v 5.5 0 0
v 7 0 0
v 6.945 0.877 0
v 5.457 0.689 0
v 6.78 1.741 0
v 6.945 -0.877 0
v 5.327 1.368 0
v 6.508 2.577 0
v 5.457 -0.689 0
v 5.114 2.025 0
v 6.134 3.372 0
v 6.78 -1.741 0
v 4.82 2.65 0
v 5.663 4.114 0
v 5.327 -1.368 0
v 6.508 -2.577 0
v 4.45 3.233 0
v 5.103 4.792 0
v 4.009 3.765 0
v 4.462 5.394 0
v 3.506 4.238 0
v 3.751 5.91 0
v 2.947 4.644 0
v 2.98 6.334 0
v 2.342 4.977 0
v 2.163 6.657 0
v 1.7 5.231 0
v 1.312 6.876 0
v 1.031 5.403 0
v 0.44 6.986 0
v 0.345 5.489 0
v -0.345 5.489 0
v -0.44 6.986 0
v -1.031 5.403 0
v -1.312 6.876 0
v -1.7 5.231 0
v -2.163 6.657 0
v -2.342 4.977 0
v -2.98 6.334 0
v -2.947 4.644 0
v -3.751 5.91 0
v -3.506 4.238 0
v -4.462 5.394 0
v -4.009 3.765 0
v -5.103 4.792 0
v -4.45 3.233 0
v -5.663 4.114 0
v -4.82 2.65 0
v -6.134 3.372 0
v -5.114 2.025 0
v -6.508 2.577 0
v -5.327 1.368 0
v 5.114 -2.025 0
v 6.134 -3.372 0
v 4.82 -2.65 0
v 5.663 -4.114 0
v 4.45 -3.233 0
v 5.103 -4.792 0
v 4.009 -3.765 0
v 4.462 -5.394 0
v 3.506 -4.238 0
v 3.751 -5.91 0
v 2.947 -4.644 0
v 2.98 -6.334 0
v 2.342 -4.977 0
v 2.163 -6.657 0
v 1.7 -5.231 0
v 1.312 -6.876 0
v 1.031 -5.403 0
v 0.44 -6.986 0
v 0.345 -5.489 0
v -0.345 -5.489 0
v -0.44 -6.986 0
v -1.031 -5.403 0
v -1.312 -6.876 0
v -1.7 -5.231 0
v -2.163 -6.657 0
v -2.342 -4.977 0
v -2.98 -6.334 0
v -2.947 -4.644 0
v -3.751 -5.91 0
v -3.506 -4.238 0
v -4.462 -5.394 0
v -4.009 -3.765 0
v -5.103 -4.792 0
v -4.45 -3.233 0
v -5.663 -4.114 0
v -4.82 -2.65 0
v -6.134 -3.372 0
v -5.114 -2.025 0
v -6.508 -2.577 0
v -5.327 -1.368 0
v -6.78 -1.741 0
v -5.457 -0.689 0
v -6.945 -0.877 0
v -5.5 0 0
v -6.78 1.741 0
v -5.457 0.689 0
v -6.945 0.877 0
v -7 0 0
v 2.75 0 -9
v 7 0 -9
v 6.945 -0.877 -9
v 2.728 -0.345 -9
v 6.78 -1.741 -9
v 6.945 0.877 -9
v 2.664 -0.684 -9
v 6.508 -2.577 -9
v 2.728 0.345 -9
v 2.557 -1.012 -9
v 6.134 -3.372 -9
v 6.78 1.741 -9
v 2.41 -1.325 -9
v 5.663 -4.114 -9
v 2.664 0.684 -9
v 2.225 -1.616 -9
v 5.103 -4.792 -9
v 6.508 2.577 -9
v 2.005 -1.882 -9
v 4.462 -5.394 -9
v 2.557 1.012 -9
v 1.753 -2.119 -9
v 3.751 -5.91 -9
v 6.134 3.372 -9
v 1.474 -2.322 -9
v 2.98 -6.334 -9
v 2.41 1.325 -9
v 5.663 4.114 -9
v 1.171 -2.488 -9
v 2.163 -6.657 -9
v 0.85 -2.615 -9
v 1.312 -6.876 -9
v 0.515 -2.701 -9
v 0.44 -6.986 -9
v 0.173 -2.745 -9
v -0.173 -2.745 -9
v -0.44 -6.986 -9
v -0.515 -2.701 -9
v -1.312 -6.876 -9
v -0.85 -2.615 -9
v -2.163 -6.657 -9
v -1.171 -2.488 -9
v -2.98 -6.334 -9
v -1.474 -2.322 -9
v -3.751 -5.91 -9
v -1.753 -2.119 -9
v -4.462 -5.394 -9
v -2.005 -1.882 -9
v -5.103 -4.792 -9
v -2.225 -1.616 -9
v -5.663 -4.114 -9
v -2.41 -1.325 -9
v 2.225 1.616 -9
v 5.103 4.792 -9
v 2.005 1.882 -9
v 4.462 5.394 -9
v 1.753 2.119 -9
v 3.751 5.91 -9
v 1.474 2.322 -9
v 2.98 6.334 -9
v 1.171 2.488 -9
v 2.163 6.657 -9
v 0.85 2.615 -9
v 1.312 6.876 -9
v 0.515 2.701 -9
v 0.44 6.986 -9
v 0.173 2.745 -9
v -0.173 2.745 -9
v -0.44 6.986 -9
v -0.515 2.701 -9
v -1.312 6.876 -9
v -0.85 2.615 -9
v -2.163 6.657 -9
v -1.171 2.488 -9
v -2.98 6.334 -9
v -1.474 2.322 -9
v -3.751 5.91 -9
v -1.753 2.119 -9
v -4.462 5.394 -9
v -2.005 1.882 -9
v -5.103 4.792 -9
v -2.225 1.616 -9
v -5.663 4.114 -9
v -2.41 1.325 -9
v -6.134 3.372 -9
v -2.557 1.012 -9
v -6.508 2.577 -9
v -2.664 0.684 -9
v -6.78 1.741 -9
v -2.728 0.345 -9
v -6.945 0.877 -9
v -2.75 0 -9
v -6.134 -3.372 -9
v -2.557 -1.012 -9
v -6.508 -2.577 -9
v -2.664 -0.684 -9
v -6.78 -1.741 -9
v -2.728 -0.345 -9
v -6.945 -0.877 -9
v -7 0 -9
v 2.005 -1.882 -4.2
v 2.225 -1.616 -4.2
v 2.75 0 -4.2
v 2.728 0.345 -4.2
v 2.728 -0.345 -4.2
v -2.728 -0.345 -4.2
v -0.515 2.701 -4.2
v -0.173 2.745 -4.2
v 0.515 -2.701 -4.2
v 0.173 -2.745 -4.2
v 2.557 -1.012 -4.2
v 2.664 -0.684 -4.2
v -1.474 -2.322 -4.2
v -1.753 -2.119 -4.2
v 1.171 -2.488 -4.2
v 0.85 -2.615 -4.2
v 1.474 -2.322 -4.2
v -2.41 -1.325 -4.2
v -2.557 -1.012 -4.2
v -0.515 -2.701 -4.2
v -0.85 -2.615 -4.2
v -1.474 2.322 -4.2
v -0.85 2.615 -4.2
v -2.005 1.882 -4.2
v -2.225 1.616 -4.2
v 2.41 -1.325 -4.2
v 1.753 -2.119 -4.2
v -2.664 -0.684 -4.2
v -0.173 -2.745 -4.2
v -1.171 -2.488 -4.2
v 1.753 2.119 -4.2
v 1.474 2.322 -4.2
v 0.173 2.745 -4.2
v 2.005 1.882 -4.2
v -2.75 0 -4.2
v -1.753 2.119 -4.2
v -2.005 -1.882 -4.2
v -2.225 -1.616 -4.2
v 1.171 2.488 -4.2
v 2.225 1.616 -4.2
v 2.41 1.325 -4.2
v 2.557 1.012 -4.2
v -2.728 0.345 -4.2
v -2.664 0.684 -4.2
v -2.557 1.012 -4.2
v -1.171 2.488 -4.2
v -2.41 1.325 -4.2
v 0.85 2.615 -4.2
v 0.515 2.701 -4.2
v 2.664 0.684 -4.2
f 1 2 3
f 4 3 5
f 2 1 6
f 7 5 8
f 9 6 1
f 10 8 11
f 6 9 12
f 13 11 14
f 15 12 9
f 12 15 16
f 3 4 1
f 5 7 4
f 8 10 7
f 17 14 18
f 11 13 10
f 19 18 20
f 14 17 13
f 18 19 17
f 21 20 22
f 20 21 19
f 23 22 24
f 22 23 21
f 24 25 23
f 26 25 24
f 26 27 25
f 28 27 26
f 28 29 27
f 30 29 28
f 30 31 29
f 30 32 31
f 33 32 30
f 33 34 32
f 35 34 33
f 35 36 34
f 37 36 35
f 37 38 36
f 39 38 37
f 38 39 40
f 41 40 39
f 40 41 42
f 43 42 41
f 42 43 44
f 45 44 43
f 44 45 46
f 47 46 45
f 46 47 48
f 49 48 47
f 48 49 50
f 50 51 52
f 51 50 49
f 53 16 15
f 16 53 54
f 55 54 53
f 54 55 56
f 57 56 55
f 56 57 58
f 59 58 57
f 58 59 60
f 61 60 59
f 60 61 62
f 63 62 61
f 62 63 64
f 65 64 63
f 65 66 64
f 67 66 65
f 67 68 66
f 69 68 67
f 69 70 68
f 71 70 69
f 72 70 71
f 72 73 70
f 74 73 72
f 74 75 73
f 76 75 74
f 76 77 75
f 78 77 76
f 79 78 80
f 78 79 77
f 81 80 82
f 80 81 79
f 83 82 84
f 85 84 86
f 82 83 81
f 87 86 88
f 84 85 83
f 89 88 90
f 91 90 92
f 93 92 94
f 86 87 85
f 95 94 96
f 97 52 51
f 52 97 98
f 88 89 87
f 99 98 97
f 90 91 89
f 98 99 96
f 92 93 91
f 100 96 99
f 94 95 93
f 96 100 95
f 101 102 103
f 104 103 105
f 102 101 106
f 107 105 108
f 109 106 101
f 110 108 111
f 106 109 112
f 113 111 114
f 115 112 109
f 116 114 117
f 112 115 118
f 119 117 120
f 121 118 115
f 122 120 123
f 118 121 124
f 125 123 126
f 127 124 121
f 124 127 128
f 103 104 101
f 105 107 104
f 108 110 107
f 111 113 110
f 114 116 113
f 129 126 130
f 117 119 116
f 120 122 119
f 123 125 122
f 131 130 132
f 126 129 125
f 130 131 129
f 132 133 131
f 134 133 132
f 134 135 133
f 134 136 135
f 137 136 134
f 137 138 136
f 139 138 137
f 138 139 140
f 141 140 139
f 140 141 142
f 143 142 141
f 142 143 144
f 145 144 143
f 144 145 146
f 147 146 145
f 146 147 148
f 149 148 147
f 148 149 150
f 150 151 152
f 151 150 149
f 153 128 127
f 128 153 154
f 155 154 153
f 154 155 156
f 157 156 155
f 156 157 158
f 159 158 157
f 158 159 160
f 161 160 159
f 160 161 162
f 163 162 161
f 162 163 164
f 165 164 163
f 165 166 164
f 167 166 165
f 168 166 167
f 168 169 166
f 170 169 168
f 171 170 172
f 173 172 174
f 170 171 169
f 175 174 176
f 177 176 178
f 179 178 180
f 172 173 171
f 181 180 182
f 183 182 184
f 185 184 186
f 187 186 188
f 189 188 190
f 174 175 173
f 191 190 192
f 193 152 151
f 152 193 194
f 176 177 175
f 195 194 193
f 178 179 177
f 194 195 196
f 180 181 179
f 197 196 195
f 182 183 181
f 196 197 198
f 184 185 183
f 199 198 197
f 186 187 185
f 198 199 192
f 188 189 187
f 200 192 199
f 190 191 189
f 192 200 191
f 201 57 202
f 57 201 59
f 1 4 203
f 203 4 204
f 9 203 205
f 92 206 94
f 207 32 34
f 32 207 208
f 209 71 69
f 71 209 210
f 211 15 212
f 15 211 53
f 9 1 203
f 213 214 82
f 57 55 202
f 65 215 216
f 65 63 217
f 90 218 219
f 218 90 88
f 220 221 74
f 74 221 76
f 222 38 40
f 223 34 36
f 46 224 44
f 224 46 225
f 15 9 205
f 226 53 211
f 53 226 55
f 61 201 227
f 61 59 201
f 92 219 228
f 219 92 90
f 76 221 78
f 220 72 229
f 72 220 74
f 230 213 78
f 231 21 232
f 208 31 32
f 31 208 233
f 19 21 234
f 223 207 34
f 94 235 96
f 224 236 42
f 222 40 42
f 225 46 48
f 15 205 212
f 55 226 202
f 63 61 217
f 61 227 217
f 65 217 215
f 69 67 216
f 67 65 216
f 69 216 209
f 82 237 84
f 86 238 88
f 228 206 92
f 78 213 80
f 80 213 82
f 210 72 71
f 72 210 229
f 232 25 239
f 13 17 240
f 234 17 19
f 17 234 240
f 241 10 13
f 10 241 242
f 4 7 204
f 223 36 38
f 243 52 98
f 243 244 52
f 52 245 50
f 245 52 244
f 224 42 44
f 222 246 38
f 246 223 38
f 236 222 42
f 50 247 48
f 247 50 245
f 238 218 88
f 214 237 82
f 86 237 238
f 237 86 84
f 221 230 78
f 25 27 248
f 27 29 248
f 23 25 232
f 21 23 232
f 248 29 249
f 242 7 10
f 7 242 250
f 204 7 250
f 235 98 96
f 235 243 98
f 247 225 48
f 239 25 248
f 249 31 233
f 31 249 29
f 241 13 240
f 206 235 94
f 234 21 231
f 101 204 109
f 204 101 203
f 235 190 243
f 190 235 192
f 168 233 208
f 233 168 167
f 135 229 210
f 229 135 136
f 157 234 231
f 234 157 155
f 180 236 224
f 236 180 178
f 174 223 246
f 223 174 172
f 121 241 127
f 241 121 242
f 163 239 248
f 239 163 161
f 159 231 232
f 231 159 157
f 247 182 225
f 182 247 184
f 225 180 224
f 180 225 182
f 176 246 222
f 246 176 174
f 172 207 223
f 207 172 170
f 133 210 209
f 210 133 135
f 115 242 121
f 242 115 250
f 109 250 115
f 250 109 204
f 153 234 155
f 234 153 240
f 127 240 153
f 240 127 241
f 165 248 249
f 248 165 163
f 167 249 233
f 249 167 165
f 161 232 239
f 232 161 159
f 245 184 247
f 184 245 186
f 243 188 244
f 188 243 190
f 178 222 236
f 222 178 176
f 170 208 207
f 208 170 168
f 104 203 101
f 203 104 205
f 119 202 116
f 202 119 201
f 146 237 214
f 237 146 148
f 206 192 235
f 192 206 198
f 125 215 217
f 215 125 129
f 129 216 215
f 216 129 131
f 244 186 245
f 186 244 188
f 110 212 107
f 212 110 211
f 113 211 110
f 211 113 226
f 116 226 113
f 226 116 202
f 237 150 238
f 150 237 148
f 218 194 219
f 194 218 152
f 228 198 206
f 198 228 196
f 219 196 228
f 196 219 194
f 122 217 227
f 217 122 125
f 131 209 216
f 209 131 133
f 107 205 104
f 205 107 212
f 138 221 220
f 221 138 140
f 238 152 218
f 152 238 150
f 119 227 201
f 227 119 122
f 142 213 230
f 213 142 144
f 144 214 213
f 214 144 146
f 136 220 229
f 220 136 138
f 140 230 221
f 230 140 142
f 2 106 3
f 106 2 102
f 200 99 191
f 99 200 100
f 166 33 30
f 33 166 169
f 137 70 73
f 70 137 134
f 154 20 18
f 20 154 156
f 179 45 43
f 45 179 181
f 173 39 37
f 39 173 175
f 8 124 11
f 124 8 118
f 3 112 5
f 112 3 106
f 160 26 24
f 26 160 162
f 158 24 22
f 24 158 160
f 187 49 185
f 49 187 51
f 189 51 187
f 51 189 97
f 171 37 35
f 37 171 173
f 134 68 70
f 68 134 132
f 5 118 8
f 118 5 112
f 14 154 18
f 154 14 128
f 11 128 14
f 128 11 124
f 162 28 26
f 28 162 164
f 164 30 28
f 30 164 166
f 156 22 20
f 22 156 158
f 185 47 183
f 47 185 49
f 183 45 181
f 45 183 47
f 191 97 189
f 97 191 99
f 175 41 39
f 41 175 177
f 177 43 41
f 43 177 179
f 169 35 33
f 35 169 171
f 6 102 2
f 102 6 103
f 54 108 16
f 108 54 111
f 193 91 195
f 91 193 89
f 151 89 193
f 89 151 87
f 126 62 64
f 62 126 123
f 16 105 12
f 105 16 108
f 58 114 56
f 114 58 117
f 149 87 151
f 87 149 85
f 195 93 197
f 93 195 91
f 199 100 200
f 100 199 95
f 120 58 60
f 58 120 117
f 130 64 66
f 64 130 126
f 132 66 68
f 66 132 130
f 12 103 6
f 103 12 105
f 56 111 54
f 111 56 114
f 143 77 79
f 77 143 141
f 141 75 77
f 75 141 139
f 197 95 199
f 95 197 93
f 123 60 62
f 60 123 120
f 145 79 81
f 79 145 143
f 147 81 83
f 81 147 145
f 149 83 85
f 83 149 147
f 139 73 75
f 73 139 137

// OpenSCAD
$fn = 50;


difference() {
	union() {
		translate(v = [0, 0, -9.0000000000]) {
			cylinder(h = 9, r = 7.0000000000);
		}
		cylinder(h = 0, r = 10.0000000000);
	}
	union() {
		translate(v = [0, 0, 0]) {
			rotate(a = [0, 0, 0]) {
				difference() {
					union() {
						#translate(v = [0, 0, -9.0000000000]) {
							cylinder(h = 9, r = 2.2500000000);
						}
						#translate(v = [0, 0, -4.2000000000]) {
							cylinder(h = 4.2000000000, r1 = 2.7500000000, r2 = 5.5000000000);
						}
						#translate(v = [0, 0, -9.0000000000]) {
							cylinder(h = 9, r = 2.7500000000);
						}
						#translate(v = [0, 0, -9.0000000000]) {
							cylinder(h = 9, r = 2.2500000000);
						}
					}
					union();
				}
			}
		}
	}
}
